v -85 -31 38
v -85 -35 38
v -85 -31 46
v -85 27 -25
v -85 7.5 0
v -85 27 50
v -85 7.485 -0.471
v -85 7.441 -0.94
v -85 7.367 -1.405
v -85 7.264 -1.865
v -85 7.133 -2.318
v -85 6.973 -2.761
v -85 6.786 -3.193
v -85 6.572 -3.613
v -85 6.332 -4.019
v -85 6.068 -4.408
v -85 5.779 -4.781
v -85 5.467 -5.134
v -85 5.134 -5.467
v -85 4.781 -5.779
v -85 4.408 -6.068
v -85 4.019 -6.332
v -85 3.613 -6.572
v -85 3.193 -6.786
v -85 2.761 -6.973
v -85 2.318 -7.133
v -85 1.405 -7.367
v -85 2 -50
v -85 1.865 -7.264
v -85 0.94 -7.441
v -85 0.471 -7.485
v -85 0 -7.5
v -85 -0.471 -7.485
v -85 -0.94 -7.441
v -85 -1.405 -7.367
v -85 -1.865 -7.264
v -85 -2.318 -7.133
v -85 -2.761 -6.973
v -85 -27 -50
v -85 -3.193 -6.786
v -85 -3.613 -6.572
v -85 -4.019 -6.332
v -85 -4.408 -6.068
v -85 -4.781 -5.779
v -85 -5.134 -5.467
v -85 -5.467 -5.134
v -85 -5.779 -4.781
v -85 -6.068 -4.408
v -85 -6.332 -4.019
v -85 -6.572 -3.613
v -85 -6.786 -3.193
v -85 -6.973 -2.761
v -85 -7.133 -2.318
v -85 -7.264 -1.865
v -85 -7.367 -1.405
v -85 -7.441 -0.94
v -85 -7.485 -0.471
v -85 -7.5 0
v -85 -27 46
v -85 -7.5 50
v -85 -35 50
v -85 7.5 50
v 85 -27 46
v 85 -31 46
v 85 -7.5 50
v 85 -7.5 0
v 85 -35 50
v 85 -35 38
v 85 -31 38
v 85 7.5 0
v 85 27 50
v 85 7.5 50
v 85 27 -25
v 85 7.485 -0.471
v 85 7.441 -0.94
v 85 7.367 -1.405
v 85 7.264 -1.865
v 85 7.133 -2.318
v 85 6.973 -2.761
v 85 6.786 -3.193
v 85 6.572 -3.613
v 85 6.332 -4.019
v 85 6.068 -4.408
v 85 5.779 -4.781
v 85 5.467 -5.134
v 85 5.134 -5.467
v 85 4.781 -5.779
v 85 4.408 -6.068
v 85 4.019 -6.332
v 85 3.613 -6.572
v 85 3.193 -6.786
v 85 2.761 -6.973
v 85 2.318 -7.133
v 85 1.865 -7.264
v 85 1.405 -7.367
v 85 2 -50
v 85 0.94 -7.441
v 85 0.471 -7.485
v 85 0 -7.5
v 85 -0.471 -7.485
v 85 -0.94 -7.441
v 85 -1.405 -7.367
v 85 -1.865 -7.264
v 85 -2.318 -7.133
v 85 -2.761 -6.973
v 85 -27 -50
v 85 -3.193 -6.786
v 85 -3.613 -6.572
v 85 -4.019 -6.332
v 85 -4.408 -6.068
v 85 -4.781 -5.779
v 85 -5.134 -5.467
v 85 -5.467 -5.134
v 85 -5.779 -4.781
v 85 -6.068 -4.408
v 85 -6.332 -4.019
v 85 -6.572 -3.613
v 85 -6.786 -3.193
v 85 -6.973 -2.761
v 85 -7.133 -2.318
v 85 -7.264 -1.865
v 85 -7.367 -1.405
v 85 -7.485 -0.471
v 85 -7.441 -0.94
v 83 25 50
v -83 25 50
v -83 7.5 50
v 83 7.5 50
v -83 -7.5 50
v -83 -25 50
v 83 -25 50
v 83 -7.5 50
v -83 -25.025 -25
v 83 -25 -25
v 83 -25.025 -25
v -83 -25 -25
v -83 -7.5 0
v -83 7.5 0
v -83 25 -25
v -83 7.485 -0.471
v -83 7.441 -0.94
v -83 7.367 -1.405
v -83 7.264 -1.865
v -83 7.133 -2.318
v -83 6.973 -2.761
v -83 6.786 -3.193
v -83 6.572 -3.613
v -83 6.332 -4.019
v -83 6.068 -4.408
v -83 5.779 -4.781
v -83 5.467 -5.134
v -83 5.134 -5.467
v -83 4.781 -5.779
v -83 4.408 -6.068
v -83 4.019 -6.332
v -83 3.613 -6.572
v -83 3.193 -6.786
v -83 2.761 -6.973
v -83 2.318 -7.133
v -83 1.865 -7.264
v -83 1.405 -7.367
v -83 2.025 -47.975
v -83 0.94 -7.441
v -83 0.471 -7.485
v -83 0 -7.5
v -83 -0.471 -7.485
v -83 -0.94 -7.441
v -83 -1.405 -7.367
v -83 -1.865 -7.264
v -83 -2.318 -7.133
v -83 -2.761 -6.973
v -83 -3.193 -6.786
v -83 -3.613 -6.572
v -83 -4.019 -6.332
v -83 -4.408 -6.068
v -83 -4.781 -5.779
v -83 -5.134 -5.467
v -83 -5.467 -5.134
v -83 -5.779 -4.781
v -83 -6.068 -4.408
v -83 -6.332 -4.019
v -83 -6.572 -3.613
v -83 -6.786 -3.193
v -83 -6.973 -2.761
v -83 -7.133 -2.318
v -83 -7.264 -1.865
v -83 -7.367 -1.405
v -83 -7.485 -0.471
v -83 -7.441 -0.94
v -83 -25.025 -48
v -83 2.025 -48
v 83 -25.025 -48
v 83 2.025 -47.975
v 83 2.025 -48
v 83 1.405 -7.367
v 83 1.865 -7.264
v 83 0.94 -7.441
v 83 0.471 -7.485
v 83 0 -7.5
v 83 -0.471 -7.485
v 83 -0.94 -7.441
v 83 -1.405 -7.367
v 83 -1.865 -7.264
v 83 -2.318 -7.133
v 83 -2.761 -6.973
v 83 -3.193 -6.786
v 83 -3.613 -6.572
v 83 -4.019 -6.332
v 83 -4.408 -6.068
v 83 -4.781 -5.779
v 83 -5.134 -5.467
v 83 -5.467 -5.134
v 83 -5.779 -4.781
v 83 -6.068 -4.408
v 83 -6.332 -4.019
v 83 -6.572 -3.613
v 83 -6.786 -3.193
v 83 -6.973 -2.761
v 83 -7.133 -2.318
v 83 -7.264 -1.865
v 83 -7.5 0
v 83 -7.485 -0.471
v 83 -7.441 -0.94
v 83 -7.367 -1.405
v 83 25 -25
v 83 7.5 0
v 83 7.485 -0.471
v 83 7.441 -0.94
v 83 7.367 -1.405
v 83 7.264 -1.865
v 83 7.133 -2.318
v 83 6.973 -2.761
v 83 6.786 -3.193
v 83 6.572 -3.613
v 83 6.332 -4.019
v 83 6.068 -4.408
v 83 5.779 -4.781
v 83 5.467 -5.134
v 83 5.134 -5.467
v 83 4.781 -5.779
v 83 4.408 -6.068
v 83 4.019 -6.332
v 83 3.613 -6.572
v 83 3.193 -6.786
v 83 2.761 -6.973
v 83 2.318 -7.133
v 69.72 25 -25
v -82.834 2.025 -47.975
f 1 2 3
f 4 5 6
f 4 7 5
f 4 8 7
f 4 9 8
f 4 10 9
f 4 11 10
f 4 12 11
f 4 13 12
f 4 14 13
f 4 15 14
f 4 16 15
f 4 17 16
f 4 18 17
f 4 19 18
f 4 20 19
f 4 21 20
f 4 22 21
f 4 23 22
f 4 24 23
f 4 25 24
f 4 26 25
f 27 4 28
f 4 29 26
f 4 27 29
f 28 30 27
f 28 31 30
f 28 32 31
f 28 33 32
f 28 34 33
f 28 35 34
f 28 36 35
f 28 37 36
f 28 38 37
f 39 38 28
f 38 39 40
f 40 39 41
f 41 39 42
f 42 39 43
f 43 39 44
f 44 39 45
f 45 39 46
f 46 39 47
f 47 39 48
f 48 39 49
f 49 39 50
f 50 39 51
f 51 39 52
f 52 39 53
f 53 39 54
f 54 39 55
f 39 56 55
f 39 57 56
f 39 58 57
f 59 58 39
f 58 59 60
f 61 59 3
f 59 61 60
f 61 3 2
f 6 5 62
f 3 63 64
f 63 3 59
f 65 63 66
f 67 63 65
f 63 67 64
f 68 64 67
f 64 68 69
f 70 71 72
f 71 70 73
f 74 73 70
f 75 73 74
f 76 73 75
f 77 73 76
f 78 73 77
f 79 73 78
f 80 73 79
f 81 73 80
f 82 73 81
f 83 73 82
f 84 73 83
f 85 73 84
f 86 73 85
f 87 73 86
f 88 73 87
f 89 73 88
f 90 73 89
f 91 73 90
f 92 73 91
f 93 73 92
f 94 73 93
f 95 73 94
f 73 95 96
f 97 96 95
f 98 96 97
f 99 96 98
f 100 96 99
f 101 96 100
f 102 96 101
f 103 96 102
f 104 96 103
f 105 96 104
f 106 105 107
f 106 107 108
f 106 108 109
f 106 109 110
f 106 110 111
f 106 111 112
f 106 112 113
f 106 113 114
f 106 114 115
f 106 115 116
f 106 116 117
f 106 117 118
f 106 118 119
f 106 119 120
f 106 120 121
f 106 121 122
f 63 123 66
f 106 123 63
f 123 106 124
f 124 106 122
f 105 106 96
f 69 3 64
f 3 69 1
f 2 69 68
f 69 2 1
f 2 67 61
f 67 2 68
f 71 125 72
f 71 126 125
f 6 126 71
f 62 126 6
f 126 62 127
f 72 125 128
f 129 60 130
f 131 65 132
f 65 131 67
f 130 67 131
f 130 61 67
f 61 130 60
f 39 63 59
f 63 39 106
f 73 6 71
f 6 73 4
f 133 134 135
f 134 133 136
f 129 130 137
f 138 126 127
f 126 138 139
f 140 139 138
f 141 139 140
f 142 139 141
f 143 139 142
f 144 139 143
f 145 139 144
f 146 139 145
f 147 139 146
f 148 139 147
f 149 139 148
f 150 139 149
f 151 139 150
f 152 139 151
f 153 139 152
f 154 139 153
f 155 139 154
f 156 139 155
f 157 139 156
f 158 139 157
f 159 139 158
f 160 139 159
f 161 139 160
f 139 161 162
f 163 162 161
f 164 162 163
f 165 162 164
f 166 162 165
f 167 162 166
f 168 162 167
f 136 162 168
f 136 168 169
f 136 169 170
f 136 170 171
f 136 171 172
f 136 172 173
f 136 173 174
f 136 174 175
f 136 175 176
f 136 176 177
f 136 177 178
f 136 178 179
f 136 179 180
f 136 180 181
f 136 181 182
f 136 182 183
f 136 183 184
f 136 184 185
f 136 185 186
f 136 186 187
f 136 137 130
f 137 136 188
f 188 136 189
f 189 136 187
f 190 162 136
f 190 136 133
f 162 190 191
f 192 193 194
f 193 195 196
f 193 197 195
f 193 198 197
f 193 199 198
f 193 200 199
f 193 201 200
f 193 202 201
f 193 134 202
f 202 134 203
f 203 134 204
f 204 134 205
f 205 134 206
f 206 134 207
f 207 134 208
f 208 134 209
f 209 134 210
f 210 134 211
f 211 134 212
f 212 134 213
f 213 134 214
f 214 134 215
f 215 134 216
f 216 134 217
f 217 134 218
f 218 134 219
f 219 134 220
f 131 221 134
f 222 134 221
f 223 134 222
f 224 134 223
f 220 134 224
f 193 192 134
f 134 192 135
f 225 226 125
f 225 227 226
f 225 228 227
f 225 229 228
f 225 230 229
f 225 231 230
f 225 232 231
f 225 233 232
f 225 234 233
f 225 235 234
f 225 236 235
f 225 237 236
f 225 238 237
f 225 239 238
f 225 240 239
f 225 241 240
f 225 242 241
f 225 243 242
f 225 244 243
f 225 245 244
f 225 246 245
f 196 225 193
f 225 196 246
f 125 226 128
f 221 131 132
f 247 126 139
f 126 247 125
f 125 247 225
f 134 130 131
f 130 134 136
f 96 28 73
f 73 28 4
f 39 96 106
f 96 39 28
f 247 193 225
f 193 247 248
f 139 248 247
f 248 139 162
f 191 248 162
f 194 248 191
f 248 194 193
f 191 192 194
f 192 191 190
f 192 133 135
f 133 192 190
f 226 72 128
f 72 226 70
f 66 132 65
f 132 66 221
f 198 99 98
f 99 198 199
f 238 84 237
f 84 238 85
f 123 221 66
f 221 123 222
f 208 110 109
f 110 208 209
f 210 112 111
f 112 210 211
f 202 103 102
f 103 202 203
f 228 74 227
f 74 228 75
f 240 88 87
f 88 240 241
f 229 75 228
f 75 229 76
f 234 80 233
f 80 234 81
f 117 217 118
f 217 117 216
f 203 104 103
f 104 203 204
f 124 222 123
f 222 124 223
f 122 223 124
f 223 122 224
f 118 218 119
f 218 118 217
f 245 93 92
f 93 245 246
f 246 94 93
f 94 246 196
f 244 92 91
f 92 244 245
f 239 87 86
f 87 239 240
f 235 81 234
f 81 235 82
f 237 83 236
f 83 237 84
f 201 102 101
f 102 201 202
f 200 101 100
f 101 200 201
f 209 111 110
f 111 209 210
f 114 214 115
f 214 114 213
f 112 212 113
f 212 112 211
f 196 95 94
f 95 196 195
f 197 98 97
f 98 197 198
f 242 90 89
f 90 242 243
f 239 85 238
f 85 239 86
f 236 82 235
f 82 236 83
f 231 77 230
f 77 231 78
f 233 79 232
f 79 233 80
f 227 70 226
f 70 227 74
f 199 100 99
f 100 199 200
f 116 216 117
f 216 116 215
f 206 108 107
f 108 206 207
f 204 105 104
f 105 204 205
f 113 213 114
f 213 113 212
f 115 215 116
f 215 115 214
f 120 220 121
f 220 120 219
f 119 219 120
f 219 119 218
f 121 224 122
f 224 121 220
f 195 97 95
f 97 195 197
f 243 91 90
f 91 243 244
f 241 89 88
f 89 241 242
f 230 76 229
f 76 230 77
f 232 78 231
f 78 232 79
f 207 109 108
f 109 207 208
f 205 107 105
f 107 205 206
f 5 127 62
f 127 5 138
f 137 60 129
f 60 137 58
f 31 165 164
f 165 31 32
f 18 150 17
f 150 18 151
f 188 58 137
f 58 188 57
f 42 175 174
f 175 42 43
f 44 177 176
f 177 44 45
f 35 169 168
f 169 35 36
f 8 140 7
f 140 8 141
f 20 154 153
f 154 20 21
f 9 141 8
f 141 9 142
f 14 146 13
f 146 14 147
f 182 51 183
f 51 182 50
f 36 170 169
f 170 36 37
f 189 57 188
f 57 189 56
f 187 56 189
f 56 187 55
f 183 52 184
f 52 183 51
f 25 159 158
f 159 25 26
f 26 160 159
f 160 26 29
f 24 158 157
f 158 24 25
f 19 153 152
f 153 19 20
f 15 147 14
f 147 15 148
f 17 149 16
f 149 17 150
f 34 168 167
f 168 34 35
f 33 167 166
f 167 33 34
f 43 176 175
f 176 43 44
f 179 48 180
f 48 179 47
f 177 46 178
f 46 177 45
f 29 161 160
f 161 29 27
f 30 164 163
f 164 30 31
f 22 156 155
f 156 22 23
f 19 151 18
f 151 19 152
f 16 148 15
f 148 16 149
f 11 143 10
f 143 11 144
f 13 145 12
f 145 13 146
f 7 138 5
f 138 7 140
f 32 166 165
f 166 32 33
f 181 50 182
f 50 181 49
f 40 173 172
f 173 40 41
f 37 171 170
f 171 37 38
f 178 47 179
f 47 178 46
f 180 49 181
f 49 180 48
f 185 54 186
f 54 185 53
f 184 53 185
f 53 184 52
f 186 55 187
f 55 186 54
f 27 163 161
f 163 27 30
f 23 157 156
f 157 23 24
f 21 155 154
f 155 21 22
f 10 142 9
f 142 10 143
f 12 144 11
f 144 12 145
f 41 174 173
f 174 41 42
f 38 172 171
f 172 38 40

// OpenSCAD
detail = 100;
longueur = 170;
largeur = 50;
hauteur = 100;
largeur_encoche = 4;
largeur_bordure = 4;
largeur_rainure = 15;
profondeur_encoche = 8;
epaisseur = 2;

module boite(longueur, largeur, hauteur, epaisseur){
    largeur_biseau = largeur/2;
    translate([0,0,hauteur/2-(hauteur-largeur_biseau)/2])
    difference(){
        cube([longueur, largeur+2*epaisseur, hauteur-largeur_biseau], center=true);
        cube([longueur-2*epaisseur, largeur, hauteur-largeur_biseau+2], center=true);
    }
    translate([0,epaisseur, -hauteur/2+largeur_biseau])
    difference(){
        union(){
            rotate([0,90,0])
            linear_extrude(height=longueur, center=true, convexity = 0, twist = 0) 
            polygon(points=[
                [0,0],
                [0,largeur_biseau],
                [largeur_biseau,0],
                ], paths=[[0,1,2]]);
            translate([0,-epaisseur-largeur_biseau/2, -largeur_biseau/2])
            cube([longueur,largeur_biseau+2*epaisseur,largeur_biseau],center=true);
        }
        translate([0,0,epaisseur])
        union(){
            rotate([0,90,0])
                linear_extrude(height=longueur-2*epaisseur, center=true, convexity = 0, twist = 0) 
                polygon(points=[
                    [0,0],
                    [0,largeur_biseau],
                    [largeur_biseau,0],
                    ], paths=[[0,1,2]]);
                translate([0,-epaisseur/2-largeur_biseau/2, -largeur_biseau/2])
                cube([longueur-2*epaisseur,largeur_biseau+epaisseur+0.05,largeur_biseau],center=true);
        }
    }
}

module rainure(){
    cube([4*epaisseur, largeur_rainure,hauteur],center=true);
    translate([-2*epaisseur,0,-hauteur/2])
    rotate([0,90,0])
    cylinder(d=largeur_rainure, h=4*epaisseur, $fn=detail);
}

module crochet(){
    translate([0,0,-profondeur_encoche])
    cube([longueur,largeur_encoche,profondeur_encoche]);
    cube([longueur,largeur_encoche+largeur_bordure,2*epaisseur]);
}

module boite_complete(){
    
    translate([-longueur/2,-epaisseur-largeur/2-largeur_encoche-largeur_bordure,hauteur/2-2*epaisseur])
color("blue")
crochet();
    difference(){
        boite(longueur, largeur, hauteur, epaisseur);
        translate([longueur/2,0,hauteur/2])
        rainure();
        translate([-longueur/2,0,hauteur/2])
        rainure();
    }
    
}
boite_complete();
